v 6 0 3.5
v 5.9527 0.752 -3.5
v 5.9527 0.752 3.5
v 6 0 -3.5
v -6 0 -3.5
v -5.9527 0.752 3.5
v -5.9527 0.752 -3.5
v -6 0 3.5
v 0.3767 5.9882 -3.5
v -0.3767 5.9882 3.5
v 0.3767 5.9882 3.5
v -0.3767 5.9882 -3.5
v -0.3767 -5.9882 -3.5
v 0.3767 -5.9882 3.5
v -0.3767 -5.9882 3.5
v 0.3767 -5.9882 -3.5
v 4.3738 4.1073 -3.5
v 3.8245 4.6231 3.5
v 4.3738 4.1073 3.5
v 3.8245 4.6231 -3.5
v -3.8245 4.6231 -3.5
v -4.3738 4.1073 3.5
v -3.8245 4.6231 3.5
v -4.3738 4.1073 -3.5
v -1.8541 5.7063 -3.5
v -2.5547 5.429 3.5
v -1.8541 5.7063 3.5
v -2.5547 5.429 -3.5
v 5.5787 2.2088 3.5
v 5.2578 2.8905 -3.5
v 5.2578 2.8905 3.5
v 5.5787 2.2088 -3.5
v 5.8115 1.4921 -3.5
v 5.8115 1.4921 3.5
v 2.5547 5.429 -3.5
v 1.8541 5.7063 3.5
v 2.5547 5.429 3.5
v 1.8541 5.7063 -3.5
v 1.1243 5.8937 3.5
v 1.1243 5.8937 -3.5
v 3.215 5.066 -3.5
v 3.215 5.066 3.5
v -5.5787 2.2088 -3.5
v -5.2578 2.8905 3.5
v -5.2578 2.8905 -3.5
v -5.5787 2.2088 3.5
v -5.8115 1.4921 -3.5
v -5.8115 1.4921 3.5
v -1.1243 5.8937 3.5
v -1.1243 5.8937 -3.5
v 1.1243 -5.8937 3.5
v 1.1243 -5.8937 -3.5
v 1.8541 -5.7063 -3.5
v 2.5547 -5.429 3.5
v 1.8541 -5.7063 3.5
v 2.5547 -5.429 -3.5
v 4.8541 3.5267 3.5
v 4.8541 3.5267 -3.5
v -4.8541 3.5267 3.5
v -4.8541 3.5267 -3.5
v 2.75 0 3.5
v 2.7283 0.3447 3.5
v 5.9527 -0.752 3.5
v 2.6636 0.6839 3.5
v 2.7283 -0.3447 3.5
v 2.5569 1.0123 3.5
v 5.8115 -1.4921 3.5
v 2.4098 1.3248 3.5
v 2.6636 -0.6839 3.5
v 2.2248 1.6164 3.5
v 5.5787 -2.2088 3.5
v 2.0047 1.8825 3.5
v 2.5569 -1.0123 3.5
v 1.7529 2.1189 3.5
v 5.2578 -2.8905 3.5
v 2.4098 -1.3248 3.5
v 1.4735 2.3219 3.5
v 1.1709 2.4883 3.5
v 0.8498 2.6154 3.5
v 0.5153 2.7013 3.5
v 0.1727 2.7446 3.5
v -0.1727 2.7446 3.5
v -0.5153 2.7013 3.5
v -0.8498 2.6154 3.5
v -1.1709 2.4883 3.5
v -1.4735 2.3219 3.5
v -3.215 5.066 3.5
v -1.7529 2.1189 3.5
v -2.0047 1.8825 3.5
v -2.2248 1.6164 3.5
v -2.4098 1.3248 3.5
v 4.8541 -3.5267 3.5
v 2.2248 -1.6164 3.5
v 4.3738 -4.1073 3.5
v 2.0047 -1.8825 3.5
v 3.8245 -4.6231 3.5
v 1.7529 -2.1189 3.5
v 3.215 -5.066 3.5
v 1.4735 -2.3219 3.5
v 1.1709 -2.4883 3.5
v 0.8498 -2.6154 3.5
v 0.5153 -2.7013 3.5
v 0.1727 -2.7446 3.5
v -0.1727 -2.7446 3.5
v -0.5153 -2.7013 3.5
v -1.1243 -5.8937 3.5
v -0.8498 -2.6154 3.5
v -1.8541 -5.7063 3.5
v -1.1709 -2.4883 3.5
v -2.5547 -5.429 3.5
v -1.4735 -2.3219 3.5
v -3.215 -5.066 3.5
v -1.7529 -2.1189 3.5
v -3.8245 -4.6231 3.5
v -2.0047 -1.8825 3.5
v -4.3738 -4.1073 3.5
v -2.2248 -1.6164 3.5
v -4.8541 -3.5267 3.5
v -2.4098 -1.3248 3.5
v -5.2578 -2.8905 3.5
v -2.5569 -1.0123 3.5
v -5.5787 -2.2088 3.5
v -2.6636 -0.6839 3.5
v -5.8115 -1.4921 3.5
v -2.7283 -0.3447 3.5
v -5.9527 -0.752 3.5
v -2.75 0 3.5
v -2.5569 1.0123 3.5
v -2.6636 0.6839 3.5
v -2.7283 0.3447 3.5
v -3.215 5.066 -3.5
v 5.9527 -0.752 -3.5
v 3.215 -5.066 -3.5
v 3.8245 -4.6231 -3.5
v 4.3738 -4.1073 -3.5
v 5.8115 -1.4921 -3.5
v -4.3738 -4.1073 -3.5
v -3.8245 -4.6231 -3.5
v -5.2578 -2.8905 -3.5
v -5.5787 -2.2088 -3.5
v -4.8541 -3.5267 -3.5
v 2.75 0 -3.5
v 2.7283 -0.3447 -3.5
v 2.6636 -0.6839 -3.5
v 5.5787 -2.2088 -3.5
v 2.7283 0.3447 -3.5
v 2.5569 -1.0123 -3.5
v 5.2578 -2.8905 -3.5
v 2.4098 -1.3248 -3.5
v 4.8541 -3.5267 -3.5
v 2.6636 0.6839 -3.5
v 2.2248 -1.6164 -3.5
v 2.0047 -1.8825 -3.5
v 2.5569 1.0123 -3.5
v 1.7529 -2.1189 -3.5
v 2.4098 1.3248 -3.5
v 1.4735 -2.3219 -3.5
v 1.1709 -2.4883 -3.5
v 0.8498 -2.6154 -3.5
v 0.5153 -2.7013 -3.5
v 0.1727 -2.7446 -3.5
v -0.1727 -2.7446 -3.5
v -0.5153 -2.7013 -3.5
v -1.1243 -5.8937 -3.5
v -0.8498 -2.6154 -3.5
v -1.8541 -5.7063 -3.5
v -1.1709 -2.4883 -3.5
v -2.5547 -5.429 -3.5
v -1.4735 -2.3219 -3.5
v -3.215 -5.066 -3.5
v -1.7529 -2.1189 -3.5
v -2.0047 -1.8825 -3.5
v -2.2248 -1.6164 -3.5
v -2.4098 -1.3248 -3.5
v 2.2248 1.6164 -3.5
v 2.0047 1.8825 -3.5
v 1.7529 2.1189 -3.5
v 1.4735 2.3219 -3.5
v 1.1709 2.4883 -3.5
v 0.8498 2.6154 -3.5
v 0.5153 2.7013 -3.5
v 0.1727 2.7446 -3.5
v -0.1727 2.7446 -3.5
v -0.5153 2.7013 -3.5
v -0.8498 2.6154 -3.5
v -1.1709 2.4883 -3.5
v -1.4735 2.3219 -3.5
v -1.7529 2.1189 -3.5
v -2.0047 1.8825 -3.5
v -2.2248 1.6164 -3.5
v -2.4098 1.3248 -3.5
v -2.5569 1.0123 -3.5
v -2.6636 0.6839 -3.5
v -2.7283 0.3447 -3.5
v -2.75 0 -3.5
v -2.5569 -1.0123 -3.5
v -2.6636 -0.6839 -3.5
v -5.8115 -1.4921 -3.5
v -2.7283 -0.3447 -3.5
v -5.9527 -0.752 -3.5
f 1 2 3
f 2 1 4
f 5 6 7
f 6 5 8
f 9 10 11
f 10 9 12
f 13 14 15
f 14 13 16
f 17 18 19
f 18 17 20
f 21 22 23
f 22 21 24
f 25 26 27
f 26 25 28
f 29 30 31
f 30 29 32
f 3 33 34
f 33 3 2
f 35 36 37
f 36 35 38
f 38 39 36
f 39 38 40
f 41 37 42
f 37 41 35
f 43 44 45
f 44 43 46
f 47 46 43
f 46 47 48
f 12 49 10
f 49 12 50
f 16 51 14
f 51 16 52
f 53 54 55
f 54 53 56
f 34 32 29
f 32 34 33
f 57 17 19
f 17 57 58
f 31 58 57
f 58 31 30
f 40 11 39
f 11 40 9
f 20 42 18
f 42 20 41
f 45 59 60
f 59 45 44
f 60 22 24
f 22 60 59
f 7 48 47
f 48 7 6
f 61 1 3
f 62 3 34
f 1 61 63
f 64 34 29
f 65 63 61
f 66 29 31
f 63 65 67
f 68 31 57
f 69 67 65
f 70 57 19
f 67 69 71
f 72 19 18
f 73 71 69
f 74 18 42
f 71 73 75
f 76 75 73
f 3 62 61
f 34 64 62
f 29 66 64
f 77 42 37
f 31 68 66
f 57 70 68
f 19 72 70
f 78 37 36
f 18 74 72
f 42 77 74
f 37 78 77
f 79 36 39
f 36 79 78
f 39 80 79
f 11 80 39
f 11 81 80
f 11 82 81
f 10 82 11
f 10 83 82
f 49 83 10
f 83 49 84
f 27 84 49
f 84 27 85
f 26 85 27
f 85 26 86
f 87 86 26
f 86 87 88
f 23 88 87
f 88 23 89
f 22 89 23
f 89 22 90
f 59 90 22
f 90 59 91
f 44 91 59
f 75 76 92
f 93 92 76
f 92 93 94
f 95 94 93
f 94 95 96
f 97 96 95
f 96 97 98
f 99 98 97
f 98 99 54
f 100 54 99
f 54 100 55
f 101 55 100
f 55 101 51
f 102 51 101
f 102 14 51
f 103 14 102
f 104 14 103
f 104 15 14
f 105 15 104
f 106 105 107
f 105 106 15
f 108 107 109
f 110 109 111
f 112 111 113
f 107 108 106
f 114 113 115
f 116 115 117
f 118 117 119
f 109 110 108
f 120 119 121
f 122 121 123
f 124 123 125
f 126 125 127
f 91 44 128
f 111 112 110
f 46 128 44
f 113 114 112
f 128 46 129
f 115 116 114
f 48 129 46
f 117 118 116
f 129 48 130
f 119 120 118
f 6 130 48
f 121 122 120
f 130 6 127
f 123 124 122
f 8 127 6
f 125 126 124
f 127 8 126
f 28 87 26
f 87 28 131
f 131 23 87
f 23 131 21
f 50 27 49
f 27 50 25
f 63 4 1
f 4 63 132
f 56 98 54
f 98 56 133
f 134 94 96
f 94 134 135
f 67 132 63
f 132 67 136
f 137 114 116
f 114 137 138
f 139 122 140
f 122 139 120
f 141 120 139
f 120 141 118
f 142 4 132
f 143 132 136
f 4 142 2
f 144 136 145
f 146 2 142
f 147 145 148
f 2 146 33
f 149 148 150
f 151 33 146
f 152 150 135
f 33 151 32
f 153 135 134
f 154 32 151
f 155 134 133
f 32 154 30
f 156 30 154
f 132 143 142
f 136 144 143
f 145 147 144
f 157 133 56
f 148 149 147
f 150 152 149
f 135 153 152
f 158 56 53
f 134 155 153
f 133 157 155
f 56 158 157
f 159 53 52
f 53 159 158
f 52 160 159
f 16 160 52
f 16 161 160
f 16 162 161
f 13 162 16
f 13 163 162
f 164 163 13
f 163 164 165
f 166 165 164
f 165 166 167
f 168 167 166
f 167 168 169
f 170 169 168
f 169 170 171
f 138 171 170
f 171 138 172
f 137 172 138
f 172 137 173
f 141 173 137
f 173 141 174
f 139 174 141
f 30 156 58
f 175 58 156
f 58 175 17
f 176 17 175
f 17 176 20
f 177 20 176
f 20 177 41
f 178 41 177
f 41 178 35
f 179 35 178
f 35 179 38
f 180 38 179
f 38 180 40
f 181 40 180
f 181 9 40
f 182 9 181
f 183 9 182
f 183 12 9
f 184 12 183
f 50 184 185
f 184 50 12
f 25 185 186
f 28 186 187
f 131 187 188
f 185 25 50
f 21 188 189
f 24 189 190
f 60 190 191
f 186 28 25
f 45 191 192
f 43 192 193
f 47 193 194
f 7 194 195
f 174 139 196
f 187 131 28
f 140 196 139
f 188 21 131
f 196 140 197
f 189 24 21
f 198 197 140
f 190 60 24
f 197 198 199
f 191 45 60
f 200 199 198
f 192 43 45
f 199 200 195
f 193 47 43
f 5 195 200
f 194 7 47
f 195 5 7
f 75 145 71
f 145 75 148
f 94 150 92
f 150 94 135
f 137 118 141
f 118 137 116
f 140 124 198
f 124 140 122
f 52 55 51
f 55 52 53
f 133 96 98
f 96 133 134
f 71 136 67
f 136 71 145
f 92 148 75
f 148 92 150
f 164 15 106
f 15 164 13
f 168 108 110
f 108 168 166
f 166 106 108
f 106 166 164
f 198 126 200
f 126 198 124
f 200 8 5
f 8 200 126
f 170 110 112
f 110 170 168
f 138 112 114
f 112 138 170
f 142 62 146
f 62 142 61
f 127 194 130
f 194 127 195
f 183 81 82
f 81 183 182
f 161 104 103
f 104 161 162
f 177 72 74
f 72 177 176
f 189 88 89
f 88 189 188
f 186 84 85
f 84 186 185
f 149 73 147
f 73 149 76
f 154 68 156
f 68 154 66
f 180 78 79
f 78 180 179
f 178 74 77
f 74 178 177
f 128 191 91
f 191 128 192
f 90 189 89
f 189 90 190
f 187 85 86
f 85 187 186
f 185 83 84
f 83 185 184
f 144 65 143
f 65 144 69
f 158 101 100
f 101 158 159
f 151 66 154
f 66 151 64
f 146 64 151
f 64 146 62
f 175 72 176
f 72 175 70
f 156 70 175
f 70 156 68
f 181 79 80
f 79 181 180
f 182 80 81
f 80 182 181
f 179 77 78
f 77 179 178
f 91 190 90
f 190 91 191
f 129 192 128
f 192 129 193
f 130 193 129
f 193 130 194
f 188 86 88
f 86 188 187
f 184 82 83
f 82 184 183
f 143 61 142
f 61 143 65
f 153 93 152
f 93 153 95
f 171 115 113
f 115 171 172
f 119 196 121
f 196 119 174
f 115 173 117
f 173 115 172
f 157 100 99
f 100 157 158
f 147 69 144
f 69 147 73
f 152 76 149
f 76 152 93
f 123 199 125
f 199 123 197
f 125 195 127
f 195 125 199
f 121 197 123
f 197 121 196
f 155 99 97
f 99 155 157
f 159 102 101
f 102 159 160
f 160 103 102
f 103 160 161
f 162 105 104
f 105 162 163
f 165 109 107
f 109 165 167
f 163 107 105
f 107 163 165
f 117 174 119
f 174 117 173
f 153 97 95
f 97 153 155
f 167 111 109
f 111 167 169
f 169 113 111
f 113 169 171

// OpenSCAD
$fn = 50;


difference() {
	union() {
		translate(v = [0, 0, -3.5000000000]) {
			cylinder(h = 7, r = 6.0000000000);
		}
	}
	union() {
		translate(v = [0, 0, -100.0000000000]) {
			cylinder(h = 200, r = 2.7500000000);
		}
	}
}
